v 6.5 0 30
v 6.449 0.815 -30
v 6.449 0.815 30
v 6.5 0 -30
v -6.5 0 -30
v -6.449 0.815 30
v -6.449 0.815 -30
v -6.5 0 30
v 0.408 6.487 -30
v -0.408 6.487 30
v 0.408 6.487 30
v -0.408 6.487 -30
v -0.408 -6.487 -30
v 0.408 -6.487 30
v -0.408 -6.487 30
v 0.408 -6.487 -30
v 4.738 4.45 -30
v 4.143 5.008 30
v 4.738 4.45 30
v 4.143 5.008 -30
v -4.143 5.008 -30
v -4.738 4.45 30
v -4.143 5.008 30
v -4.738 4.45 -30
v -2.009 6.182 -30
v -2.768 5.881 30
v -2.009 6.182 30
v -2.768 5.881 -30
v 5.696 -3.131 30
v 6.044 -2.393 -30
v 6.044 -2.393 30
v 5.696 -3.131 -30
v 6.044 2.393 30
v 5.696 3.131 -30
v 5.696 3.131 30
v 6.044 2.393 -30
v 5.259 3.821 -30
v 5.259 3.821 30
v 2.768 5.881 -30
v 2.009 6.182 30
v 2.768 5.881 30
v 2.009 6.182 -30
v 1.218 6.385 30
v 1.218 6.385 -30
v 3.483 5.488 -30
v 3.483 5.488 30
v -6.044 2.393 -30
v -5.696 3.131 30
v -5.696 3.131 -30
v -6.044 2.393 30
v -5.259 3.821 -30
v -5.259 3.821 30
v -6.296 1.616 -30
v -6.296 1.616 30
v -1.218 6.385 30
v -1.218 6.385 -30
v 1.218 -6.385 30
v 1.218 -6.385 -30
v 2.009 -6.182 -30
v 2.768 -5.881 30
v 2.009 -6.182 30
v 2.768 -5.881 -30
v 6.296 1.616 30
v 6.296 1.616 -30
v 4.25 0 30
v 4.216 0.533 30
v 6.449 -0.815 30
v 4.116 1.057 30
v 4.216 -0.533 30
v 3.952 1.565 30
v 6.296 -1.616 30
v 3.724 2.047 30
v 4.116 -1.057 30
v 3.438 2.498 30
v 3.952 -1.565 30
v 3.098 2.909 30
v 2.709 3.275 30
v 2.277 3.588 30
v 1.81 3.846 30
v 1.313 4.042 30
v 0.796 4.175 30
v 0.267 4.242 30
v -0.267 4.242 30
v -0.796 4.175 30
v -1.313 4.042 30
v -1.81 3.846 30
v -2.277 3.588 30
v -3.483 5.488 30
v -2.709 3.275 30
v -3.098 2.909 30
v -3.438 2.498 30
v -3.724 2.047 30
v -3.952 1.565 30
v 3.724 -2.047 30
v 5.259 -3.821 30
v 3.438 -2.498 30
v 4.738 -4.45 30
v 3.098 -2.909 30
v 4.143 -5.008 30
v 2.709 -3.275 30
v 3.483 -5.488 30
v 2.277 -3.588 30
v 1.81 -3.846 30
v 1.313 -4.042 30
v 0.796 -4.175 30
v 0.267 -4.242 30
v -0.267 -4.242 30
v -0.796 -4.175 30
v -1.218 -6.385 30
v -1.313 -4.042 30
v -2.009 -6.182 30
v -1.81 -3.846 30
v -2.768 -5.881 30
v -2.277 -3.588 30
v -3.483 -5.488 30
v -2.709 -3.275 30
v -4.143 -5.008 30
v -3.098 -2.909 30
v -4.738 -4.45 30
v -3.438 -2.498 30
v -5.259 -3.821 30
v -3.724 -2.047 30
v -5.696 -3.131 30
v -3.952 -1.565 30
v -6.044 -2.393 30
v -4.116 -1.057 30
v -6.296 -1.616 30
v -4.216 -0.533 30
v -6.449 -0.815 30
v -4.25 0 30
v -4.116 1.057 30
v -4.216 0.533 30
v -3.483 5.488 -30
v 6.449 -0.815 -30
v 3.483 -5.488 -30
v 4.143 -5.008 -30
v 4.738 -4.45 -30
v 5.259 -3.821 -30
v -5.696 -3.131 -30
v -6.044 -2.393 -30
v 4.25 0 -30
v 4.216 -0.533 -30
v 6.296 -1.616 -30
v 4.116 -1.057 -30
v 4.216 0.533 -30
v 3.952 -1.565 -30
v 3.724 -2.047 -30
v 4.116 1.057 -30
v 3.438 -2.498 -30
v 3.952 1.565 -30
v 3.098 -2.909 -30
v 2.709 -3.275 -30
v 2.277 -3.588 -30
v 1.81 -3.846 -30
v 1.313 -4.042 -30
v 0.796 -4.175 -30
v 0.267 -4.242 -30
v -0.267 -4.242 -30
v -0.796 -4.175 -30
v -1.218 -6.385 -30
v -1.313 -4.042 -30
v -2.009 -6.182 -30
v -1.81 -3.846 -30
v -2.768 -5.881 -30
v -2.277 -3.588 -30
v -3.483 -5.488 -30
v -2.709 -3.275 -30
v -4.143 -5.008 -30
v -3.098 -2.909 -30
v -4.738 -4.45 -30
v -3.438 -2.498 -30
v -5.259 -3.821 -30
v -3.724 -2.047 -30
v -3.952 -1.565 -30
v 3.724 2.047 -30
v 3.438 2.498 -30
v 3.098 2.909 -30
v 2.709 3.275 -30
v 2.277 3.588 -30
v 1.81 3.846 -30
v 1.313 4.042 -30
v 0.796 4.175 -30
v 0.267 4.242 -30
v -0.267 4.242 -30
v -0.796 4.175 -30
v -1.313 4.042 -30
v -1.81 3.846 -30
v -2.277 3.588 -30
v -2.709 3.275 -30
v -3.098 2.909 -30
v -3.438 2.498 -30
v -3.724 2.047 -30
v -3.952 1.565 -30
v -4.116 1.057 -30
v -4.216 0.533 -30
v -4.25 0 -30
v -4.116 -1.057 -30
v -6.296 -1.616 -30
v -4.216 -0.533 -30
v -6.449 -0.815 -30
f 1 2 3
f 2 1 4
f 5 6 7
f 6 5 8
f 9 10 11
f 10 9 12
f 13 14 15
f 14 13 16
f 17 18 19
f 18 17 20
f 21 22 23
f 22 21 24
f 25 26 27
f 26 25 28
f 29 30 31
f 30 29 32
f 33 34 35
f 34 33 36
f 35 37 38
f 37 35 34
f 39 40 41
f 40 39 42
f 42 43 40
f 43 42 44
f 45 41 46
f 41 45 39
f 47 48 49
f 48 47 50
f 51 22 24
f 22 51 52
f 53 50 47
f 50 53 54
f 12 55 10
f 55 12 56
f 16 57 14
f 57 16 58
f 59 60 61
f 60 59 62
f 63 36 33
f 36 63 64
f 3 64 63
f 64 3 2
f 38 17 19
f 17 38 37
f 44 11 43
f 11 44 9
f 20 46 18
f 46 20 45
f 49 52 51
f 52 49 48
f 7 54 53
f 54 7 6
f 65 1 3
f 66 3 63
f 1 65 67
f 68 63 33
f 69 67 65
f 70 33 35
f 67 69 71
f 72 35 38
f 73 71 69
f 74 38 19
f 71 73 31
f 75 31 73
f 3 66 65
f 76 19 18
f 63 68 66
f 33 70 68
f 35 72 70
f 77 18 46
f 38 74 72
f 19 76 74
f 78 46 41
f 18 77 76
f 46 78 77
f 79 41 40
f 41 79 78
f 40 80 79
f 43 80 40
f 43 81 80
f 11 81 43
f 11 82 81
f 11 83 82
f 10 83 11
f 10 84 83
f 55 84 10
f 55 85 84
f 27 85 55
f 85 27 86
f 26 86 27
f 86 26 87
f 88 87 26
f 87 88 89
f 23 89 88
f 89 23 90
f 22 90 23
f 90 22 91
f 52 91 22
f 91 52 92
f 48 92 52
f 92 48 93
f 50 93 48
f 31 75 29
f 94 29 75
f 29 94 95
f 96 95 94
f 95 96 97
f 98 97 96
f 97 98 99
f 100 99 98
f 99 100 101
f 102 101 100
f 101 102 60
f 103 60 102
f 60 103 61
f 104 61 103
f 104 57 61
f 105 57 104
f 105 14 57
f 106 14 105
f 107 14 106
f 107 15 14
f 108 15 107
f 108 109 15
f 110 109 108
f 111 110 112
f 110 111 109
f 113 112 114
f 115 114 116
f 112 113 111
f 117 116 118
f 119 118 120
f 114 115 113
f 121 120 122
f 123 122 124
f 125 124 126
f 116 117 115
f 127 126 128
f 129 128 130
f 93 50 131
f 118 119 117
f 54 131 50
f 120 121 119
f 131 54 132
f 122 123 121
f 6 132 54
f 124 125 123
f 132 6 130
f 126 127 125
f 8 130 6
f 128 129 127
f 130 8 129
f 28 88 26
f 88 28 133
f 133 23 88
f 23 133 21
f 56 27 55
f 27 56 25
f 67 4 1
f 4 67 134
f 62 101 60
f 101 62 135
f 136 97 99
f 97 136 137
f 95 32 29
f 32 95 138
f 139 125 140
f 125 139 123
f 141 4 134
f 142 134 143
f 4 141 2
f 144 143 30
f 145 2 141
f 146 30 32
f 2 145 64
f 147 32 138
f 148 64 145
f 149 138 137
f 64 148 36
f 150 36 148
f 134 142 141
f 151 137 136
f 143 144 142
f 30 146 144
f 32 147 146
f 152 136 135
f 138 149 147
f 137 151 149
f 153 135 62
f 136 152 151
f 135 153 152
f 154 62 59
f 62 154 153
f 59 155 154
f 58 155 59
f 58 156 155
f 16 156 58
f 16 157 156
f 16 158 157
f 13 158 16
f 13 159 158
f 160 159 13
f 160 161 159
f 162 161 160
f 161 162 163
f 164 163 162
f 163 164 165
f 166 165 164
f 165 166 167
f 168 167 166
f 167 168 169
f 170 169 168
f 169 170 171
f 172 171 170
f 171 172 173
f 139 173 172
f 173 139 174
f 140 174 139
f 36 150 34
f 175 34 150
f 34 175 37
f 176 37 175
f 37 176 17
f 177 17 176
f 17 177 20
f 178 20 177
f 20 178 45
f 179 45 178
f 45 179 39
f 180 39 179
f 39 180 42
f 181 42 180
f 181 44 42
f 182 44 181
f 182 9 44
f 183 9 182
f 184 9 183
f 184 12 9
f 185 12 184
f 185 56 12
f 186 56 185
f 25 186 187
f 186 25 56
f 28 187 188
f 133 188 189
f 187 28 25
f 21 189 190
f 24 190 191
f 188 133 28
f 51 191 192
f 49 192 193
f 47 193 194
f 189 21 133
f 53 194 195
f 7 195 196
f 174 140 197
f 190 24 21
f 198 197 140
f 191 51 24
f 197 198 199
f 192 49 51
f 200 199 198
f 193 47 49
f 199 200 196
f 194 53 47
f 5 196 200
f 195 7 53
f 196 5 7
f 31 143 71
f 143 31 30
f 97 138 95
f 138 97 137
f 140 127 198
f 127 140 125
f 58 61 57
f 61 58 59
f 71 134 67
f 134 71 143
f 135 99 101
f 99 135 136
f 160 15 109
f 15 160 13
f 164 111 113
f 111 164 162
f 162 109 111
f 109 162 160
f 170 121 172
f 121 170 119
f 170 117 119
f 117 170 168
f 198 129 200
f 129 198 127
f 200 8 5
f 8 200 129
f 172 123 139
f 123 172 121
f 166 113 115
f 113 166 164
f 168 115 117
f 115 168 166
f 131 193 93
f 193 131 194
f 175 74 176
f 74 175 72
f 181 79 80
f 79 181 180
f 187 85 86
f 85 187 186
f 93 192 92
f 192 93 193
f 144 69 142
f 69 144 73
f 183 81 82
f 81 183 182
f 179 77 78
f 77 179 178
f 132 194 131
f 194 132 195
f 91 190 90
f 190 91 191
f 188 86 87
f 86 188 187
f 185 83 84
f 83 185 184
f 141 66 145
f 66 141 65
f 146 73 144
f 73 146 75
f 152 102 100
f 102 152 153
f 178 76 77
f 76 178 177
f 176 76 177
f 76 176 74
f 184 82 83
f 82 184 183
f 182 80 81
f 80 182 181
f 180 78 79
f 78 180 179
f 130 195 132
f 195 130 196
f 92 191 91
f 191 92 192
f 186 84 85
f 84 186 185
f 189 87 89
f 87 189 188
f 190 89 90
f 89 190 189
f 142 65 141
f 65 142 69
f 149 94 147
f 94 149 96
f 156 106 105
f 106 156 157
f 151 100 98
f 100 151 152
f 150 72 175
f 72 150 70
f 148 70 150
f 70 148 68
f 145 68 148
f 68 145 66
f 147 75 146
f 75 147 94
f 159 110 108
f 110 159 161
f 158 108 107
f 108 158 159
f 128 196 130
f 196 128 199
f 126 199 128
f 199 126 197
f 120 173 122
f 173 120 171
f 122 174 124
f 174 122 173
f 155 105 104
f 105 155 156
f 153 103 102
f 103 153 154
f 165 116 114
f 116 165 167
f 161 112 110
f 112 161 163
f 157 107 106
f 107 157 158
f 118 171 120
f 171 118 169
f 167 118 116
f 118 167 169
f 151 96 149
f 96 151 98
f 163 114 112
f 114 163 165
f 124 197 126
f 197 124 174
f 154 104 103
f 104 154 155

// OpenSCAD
$fn = 50;


difference() {
	union() {
		translate(v = [0, 0, -30.0000000000]) {
			cylinder(h = 60, r = 6.5000000000);
		}
	}
	union() {
		translate(v = [0, 0, -100.0000000000]) {
			cylinder(h = 200, r = 4.2500000000);
		}
	}
}
